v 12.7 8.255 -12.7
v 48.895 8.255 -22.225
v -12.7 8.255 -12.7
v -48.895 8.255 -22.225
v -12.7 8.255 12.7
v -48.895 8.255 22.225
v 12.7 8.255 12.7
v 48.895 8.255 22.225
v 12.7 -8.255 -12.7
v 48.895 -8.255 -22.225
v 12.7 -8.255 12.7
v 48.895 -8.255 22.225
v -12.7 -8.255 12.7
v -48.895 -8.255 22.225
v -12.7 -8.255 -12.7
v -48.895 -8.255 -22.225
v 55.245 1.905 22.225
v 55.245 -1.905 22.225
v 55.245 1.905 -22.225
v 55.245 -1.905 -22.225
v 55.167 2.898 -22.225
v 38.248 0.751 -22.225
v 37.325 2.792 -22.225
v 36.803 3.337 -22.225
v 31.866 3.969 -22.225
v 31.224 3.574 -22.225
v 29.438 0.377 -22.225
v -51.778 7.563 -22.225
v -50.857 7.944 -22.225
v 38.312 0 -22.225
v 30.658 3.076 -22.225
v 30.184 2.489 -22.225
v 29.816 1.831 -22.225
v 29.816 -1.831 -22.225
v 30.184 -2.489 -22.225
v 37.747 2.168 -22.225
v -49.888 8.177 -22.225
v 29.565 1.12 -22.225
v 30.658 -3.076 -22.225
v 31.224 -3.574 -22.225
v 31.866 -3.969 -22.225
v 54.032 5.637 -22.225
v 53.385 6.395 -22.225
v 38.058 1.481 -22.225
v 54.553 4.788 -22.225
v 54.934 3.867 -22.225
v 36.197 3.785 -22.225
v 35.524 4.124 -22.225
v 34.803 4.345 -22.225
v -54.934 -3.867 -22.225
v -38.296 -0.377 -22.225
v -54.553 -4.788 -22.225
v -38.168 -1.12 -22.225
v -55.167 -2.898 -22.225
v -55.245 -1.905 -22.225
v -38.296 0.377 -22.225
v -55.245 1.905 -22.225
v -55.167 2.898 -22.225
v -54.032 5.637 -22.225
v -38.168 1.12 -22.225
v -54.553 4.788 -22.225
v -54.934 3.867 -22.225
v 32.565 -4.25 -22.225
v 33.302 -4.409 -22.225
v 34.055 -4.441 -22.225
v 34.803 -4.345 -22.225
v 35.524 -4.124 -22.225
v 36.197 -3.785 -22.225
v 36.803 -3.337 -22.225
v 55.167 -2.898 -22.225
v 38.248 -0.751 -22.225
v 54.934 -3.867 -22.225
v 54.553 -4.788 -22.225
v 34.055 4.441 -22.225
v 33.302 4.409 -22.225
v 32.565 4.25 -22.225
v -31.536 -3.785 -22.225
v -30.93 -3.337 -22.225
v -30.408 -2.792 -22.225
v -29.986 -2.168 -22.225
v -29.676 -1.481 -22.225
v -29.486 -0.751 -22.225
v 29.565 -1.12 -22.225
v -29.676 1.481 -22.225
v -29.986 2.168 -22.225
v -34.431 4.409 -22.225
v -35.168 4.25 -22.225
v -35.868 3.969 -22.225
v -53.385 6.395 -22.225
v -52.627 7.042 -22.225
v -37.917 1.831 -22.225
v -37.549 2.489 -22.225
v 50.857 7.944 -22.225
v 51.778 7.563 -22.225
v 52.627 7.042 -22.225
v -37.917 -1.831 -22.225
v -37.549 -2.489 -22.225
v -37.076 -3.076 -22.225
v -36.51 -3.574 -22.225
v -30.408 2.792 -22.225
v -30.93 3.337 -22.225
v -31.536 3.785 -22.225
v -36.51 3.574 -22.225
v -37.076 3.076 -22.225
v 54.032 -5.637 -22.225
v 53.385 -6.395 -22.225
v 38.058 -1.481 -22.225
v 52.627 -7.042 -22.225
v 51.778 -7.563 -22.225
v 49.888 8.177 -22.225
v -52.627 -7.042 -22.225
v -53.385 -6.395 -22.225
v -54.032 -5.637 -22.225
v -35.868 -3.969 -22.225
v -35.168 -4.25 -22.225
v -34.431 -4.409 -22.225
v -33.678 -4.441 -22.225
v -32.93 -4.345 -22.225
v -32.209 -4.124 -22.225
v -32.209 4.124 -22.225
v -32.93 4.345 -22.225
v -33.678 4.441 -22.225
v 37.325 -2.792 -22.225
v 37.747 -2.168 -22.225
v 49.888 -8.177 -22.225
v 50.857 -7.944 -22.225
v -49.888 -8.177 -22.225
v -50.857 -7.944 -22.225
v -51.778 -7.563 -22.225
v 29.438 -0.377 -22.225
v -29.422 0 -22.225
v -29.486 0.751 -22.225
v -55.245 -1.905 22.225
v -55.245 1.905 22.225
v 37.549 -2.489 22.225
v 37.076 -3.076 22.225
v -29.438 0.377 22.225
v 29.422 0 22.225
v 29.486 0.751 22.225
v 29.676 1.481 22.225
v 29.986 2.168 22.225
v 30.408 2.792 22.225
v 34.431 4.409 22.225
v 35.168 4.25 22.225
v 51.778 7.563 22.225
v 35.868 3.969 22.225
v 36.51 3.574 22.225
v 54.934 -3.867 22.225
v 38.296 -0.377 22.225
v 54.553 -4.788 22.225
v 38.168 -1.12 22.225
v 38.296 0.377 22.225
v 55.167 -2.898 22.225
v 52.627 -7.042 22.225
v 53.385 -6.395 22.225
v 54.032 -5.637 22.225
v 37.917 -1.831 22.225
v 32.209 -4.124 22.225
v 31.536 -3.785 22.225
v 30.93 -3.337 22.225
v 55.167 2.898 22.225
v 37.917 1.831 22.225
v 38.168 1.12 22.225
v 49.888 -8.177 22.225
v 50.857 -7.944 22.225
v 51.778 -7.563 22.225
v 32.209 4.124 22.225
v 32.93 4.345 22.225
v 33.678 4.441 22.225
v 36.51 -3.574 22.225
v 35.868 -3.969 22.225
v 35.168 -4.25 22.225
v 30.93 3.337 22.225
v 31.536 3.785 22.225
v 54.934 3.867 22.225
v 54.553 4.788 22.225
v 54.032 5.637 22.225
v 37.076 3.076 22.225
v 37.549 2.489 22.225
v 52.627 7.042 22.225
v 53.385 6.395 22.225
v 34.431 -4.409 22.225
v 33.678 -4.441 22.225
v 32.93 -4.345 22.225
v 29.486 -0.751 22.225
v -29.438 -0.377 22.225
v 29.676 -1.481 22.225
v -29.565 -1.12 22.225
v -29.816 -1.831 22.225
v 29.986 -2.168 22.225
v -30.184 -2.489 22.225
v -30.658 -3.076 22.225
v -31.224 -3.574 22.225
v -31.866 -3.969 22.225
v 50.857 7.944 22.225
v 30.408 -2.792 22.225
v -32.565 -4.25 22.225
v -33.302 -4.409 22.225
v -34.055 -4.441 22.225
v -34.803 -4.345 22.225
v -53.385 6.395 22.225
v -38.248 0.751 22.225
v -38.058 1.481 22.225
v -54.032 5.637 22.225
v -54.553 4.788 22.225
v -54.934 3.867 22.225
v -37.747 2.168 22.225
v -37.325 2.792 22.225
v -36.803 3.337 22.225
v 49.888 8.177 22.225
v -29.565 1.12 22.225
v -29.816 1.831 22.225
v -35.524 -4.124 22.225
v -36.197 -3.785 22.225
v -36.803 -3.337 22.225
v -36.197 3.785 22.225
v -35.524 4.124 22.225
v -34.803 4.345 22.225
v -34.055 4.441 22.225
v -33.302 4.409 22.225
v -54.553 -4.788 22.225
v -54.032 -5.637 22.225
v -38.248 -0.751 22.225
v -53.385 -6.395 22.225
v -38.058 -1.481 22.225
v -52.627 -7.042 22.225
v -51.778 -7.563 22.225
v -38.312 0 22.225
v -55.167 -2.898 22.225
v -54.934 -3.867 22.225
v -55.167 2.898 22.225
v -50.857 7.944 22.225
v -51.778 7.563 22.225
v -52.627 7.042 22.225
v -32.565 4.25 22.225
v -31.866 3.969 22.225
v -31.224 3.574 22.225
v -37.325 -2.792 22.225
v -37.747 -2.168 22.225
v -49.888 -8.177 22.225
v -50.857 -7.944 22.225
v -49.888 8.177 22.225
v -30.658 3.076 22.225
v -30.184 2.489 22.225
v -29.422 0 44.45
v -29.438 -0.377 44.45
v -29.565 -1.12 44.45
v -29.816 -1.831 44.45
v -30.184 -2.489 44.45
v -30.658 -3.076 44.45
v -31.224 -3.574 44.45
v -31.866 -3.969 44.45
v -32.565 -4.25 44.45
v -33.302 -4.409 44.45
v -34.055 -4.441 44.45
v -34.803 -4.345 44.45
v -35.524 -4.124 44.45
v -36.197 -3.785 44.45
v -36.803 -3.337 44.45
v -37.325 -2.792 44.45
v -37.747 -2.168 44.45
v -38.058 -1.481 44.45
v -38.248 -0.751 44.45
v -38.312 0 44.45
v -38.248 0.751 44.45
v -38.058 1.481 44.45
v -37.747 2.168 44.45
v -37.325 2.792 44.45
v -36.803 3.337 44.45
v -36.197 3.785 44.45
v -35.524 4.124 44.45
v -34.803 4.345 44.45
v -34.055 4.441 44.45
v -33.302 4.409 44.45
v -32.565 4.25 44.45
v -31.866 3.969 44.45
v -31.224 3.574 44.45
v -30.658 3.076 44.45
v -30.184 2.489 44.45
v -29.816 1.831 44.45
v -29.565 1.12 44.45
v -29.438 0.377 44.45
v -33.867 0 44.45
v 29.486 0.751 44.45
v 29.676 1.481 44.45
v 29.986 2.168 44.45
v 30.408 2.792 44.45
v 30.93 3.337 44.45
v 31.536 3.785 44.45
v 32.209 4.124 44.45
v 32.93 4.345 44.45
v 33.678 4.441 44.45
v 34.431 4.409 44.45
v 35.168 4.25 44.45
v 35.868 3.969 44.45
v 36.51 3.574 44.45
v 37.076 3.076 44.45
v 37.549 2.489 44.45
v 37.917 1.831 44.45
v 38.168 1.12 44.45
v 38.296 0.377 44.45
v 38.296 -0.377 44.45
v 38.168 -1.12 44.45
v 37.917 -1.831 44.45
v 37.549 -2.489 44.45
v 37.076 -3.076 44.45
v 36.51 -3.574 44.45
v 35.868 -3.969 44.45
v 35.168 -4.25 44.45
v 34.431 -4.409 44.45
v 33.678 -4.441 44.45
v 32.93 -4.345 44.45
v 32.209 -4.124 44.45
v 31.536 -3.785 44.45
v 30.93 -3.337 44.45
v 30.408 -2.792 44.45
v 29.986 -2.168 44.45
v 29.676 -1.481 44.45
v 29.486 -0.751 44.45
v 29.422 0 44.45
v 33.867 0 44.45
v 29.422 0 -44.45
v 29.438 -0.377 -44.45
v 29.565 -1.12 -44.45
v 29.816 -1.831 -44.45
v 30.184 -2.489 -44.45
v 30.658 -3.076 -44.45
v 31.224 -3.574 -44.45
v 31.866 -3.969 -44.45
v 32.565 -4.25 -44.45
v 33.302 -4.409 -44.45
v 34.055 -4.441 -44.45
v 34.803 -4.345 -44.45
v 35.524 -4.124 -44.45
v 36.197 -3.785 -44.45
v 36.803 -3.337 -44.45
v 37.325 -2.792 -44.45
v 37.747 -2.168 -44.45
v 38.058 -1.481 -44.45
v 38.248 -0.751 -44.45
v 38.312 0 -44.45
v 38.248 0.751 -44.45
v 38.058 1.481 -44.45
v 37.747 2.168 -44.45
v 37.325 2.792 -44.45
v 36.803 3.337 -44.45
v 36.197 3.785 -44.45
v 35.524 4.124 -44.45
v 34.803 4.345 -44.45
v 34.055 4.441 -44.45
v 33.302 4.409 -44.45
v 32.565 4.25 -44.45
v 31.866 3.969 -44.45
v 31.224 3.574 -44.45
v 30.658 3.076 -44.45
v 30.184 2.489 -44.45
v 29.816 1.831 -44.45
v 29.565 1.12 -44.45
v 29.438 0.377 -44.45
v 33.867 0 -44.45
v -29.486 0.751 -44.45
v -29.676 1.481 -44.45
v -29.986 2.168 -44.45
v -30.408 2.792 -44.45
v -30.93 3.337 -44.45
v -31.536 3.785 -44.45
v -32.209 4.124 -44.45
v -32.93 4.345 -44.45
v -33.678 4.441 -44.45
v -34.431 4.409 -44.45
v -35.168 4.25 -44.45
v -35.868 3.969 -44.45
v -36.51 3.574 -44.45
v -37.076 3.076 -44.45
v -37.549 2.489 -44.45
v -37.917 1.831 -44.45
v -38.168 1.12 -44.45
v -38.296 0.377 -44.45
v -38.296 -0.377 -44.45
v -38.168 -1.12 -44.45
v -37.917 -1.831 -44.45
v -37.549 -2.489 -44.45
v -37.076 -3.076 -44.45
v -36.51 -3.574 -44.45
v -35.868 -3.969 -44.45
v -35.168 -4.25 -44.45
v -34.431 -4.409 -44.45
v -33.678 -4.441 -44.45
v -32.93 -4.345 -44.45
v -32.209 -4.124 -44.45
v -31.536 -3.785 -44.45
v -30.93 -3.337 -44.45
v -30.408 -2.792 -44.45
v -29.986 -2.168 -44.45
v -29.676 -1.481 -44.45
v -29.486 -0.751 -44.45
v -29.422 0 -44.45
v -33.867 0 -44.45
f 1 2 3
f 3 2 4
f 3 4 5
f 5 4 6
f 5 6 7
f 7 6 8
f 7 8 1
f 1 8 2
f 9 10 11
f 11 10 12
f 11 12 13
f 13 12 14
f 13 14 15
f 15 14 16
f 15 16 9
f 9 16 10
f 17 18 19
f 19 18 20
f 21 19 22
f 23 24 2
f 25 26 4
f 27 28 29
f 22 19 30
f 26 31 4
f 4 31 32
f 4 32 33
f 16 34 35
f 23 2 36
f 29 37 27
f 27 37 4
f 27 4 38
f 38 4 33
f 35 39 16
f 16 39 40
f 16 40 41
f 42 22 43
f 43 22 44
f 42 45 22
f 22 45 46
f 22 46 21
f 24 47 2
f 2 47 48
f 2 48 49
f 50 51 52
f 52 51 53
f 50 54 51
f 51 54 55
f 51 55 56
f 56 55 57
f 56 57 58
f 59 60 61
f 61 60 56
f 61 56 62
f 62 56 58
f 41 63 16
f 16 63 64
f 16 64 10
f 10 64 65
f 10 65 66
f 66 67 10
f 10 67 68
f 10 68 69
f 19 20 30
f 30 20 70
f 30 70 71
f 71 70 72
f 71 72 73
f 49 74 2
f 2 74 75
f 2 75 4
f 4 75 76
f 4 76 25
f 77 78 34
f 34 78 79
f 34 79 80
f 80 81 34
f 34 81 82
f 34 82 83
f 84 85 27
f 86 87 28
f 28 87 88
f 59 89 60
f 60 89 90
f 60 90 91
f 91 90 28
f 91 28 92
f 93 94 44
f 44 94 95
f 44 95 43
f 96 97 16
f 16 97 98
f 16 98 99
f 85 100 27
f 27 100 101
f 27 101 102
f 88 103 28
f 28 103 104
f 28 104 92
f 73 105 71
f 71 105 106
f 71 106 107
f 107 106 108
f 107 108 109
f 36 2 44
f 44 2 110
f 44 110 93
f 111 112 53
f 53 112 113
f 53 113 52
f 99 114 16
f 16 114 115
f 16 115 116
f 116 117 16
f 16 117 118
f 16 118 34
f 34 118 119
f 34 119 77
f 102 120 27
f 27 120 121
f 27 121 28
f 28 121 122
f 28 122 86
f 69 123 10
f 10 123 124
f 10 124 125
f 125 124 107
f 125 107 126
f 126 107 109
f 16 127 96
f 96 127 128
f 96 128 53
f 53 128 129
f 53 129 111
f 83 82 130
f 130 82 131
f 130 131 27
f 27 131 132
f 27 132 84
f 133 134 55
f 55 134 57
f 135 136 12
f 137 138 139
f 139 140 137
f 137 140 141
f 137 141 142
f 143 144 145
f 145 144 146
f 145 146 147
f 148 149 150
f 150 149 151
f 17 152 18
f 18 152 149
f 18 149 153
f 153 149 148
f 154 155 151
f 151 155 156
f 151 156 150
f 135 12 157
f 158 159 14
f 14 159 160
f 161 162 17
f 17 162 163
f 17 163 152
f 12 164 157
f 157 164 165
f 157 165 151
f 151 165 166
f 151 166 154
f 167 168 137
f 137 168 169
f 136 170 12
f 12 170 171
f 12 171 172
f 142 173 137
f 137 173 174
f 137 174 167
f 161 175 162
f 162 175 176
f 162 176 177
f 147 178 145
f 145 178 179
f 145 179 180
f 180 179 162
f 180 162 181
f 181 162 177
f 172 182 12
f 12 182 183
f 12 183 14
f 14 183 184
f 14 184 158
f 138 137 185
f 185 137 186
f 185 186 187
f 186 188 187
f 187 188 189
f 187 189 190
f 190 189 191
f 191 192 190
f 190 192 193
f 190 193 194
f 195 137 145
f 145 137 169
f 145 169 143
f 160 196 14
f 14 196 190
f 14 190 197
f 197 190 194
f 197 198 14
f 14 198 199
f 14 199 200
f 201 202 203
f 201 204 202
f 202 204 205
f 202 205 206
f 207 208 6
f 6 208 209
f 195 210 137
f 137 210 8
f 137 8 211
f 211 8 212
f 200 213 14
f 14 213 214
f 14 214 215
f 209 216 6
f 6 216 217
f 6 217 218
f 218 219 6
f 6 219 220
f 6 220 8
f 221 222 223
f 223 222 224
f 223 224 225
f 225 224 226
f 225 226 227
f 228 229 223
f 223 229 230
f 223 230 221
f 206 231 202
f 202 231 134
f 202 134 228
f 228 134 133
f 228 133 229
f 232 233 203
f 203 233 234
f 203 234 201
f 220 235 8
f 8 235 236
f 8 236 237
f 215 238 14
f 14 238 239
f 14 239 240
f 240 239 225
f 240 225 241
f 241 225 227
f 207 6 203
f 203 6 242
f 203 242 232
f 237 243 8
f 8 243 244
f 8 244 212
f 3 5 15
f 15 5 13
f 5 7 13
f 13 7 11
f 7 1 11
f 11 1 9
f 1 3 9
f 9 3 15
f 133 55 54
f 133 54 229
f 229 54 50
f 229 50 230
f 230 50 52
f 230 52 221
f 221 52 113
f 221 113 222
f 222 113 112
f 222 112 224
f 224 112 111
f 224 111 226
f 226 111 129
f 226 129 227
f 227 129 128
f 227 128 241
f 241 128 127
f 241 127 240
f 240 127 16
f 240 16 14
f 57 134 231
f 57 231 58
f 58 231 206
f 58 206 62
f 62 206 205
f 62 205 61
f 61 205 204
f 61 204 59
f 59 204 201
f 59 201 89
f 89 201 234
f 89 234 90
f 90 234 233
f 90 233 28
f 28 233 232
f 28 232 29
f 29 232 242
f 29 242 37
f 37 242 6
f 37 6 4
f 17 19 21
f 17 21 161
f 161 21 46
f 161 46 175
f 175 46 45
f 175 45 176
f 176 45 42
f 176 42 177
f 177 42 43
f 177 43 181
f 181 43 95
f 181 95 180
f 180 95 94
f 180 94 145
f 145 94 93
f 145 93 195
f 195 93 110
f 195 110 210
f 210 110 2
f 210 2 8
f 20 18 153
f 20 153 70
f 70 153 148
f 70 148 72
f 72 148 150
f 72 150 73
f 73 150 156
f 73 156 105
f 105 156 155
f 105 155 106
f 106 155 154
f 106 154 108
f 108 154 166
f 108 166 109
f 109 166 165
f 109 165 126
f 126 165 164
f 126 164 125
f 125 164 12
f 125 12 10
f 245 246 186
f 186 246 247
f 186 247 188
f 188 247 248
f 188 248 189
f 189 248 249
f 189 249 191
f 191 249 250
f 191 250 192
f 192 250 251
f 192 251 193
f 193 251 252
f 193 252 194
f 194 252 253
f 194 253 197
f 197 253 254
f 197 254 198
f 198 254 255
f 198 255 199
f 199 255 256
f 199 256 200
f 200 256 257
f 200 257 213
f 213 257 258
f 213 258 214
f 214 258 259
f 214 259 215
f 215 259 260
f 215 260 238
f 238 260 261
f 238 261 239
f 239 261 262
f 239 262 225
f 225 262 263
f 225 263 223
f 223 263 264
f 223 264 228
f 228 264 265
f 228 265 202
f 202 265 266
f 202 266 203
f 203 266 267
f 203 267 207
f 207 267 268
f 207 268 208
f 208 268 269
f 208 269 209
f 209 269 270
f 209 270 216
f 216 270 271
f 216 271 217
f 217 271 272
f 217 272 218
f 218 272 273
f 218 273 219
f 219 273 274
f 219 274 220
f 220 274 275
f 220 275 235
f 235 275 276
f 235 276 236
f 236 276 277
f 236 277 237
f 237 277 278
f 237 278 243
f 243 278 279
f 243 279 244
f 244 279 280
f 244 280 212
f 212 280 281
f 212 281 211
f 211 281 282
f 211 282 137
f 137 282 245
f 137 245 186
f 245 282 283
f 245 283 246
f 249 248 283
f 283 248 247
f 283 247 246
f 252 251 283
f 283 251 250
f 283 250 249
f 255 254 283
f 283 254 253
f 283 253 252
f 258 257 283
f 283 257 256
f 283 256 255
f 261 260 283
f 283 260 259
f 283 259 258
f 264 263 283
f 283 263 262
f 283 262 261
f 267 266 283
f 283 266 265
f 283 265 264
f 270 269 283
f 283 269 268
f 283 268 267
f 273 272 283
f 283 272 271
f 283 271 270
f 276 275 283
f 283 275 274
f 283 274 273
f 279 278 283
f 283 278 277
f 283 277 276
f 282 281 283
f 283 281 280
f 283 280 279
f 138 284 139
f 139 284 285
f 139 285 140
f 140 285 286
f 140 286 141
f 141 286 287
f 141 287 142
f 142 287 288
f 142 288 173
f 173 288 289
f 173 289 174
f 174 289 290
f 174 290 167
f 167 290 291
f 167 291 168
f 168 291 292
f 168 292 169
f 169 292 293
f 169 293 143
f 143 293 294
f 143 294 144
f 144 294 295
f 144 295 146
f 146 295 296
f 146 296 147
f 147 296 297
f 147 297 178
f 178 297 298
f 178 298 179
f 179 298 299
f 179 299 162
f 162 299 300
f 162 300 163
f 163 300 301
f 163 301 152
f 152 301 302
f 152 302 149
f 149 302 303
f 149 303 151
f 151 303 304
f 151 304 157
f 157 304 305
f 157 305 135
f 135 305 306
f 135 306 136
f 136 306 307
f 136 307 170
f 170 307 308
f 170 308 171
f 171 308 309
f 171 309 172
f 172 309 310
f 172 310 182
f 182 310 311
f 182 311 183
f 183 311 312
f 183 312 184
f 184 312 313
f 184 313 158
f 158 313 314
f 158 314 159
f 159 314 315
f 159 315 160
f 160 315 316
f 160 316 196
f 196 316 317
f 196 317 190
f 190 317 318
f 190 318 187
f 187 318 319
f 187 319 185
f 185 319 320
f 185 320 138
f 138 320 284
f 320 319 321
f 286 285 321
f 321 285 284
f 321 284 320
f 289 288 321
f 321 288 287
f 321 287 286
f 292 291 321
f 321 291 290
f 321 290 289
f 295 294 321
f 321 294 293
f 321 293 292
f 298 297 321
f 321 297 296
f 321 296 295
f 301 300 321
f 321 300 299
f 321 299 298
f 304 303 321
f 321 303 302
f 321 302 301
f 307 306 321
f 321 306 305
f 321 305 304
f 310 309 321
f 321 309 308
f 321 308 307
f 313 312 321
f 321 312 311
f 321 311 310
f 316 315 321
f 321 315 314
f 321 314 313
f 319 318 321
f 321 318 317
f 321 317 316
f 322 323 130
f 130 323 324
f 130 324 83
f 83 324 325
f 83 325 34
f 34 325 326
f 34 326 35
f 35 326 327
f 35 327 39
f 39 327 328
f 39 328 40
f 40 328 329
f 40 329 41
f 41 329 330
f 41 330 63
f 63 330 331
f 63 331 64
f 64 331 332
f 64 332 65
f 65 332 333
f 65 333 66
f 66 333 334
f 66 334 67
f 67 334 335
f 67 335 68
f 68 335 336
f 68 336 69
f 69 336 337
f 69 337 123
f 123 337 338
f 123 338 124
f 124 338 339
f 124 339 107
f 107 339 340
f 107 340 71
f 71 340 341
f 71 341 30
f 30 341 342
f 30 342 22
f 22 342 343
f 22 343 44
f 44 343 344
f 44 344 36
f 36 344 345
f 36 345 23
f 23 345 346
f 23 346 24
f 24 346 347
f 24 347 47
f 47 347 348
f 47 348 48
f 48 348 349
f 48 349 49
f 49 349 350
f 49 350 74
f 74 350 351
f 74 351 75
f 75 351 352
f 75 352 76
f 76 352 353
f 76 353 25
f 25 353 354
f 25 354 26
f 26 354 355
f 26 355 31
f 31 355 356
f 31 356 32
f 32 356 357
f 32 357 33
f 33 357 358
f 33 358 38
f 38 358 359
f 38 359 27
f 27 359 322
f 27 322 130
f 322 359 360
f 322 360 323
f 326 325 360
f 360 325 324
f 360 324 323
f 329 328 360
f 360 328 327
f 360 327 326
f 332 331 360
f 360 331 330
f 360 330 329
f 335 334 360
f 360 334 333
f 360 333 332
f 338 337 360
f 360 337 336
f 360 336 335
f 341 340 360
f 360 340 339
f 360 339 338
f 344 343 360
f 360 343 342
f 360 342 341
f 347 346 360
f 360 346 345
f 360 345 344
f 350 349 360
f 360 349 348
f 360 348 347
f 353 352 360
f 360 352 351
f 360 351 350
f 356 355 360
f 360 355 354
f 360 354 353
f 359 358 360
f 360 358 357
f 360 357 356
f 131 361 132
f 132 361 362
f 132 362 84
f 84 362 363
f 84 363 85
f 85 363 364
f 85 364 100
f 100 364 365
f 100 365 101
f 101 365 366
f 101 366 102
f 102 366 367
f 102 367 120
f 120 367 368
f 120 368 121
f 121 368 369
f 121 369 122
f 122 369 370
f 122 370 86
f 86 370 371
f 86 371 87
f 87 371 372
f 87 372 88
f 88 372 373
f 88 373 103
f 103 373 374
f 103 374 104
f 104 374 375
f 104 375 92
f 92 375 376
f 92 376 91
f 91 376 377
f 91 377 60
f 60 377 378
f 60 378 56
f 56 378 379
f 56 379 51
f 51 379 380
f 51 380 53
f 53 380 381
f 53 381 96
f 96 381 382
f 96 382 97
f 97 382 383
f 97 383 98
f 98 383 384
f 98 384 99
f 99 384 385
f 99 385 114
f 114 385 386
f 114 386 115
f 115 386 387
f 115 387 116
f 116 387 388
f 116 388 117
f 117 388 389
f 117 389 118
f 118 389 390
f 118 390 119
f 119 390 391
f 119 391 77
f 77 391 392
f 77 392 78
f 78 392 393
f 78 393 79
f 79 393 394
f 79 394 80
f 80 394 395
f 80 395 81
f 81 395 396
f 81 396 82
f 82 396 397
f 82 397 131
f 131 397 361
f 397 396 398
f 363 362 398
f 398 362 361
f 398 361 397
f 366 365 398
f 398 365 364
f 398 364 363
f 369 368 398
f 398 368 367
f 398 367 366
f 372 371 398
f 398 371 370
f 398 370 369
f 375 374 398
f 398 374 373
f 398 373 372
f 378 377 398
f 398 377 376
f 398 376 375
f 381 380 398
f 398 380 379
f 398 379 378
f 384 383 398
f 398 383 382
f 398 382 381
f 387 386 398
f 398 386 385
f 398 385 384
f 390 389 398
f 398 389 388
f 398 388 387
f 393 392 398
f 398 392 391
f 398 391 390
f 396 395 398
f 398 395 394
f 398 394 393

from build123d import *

# Parameters (mm, degrees)
SKETCH1_W           = 110.49
SKETCH1_H           = 44.45
SKETCH1_W_2         = 25.4
SKETCH1_H_2         = 25.4
BOSS_EXTRUDE1_DEPTH = 8.255
FILLET1_R           = 6.35
SKETCH2_R           = 4.445
BOSS_EXTRUDE2_DEPTH = 22.225
BOSS_EXTRUDE3_START = 22.225
SKETCH3_R           = 4.445
BOSS_EXTRUDE3_DEPTH = 22.225


with BuildPart() as part:
    # Sketch1 → Boss-Extrude1 (new, symmetric)
    with BuildSketch(Plane(origin=(0, 0, 0), x_dir=(1, 0, 0), z_dir=(0, 1, 0))):
        Rectangle(SKETCH1_W, SKETCH1_H)
        Rectangle(SKETCH1_W_2, SKETCH1_H_2, mode=Mode.SUBTRACT)
    extrude(amount=BOSS_EXTRUDE1_DEPTH, both=True)

    # Fillet1
    fillet1_edges = [part.edges().sort_by_distance(p)[0] for p in [
        (-55.245, 8.255, 0),
        (55.245, 8.255, 0),
        (-55.245, -8.255, 0),
        (55.245, -8.255, 0),
    ]]
    fillet(fillet1_edges, radius=FILLET1_R)

    # Sketch2 → Boss-Extrude2 (add)
    with BuildSketch(Plane.XY.offset(22.225)):
        with Locations(Location((-33.866666667, 0, 0), (0, 0, 180))):
            Circle(SKETCH2_R)
        with Locations(Location((33.866666667, 0, 0), (0, 0, 180))):
            Circle(SKETCH2_R)
    extrude(amount=BOSS_EXTRUDE2_DEPTH)

    # Sketch3 → Boss-Extrude3 (add)
    with BuildSketch(Plane(origin=(0, 0, -22.225), x_dir=(-1, 0, 0), z_dir=(0, 0, -1)).offset(BOSS_EXTRUDE3_START)):
        with Locations((-33.866666667, 0)):
            Circle(SKETCH3_R)
        with Locations((33.866666667, 0)):
            Circle(SKETCH3_R)
    extrude(amount=-BOSS_EXTRUDE3_DEPTH)


solid = part.part
